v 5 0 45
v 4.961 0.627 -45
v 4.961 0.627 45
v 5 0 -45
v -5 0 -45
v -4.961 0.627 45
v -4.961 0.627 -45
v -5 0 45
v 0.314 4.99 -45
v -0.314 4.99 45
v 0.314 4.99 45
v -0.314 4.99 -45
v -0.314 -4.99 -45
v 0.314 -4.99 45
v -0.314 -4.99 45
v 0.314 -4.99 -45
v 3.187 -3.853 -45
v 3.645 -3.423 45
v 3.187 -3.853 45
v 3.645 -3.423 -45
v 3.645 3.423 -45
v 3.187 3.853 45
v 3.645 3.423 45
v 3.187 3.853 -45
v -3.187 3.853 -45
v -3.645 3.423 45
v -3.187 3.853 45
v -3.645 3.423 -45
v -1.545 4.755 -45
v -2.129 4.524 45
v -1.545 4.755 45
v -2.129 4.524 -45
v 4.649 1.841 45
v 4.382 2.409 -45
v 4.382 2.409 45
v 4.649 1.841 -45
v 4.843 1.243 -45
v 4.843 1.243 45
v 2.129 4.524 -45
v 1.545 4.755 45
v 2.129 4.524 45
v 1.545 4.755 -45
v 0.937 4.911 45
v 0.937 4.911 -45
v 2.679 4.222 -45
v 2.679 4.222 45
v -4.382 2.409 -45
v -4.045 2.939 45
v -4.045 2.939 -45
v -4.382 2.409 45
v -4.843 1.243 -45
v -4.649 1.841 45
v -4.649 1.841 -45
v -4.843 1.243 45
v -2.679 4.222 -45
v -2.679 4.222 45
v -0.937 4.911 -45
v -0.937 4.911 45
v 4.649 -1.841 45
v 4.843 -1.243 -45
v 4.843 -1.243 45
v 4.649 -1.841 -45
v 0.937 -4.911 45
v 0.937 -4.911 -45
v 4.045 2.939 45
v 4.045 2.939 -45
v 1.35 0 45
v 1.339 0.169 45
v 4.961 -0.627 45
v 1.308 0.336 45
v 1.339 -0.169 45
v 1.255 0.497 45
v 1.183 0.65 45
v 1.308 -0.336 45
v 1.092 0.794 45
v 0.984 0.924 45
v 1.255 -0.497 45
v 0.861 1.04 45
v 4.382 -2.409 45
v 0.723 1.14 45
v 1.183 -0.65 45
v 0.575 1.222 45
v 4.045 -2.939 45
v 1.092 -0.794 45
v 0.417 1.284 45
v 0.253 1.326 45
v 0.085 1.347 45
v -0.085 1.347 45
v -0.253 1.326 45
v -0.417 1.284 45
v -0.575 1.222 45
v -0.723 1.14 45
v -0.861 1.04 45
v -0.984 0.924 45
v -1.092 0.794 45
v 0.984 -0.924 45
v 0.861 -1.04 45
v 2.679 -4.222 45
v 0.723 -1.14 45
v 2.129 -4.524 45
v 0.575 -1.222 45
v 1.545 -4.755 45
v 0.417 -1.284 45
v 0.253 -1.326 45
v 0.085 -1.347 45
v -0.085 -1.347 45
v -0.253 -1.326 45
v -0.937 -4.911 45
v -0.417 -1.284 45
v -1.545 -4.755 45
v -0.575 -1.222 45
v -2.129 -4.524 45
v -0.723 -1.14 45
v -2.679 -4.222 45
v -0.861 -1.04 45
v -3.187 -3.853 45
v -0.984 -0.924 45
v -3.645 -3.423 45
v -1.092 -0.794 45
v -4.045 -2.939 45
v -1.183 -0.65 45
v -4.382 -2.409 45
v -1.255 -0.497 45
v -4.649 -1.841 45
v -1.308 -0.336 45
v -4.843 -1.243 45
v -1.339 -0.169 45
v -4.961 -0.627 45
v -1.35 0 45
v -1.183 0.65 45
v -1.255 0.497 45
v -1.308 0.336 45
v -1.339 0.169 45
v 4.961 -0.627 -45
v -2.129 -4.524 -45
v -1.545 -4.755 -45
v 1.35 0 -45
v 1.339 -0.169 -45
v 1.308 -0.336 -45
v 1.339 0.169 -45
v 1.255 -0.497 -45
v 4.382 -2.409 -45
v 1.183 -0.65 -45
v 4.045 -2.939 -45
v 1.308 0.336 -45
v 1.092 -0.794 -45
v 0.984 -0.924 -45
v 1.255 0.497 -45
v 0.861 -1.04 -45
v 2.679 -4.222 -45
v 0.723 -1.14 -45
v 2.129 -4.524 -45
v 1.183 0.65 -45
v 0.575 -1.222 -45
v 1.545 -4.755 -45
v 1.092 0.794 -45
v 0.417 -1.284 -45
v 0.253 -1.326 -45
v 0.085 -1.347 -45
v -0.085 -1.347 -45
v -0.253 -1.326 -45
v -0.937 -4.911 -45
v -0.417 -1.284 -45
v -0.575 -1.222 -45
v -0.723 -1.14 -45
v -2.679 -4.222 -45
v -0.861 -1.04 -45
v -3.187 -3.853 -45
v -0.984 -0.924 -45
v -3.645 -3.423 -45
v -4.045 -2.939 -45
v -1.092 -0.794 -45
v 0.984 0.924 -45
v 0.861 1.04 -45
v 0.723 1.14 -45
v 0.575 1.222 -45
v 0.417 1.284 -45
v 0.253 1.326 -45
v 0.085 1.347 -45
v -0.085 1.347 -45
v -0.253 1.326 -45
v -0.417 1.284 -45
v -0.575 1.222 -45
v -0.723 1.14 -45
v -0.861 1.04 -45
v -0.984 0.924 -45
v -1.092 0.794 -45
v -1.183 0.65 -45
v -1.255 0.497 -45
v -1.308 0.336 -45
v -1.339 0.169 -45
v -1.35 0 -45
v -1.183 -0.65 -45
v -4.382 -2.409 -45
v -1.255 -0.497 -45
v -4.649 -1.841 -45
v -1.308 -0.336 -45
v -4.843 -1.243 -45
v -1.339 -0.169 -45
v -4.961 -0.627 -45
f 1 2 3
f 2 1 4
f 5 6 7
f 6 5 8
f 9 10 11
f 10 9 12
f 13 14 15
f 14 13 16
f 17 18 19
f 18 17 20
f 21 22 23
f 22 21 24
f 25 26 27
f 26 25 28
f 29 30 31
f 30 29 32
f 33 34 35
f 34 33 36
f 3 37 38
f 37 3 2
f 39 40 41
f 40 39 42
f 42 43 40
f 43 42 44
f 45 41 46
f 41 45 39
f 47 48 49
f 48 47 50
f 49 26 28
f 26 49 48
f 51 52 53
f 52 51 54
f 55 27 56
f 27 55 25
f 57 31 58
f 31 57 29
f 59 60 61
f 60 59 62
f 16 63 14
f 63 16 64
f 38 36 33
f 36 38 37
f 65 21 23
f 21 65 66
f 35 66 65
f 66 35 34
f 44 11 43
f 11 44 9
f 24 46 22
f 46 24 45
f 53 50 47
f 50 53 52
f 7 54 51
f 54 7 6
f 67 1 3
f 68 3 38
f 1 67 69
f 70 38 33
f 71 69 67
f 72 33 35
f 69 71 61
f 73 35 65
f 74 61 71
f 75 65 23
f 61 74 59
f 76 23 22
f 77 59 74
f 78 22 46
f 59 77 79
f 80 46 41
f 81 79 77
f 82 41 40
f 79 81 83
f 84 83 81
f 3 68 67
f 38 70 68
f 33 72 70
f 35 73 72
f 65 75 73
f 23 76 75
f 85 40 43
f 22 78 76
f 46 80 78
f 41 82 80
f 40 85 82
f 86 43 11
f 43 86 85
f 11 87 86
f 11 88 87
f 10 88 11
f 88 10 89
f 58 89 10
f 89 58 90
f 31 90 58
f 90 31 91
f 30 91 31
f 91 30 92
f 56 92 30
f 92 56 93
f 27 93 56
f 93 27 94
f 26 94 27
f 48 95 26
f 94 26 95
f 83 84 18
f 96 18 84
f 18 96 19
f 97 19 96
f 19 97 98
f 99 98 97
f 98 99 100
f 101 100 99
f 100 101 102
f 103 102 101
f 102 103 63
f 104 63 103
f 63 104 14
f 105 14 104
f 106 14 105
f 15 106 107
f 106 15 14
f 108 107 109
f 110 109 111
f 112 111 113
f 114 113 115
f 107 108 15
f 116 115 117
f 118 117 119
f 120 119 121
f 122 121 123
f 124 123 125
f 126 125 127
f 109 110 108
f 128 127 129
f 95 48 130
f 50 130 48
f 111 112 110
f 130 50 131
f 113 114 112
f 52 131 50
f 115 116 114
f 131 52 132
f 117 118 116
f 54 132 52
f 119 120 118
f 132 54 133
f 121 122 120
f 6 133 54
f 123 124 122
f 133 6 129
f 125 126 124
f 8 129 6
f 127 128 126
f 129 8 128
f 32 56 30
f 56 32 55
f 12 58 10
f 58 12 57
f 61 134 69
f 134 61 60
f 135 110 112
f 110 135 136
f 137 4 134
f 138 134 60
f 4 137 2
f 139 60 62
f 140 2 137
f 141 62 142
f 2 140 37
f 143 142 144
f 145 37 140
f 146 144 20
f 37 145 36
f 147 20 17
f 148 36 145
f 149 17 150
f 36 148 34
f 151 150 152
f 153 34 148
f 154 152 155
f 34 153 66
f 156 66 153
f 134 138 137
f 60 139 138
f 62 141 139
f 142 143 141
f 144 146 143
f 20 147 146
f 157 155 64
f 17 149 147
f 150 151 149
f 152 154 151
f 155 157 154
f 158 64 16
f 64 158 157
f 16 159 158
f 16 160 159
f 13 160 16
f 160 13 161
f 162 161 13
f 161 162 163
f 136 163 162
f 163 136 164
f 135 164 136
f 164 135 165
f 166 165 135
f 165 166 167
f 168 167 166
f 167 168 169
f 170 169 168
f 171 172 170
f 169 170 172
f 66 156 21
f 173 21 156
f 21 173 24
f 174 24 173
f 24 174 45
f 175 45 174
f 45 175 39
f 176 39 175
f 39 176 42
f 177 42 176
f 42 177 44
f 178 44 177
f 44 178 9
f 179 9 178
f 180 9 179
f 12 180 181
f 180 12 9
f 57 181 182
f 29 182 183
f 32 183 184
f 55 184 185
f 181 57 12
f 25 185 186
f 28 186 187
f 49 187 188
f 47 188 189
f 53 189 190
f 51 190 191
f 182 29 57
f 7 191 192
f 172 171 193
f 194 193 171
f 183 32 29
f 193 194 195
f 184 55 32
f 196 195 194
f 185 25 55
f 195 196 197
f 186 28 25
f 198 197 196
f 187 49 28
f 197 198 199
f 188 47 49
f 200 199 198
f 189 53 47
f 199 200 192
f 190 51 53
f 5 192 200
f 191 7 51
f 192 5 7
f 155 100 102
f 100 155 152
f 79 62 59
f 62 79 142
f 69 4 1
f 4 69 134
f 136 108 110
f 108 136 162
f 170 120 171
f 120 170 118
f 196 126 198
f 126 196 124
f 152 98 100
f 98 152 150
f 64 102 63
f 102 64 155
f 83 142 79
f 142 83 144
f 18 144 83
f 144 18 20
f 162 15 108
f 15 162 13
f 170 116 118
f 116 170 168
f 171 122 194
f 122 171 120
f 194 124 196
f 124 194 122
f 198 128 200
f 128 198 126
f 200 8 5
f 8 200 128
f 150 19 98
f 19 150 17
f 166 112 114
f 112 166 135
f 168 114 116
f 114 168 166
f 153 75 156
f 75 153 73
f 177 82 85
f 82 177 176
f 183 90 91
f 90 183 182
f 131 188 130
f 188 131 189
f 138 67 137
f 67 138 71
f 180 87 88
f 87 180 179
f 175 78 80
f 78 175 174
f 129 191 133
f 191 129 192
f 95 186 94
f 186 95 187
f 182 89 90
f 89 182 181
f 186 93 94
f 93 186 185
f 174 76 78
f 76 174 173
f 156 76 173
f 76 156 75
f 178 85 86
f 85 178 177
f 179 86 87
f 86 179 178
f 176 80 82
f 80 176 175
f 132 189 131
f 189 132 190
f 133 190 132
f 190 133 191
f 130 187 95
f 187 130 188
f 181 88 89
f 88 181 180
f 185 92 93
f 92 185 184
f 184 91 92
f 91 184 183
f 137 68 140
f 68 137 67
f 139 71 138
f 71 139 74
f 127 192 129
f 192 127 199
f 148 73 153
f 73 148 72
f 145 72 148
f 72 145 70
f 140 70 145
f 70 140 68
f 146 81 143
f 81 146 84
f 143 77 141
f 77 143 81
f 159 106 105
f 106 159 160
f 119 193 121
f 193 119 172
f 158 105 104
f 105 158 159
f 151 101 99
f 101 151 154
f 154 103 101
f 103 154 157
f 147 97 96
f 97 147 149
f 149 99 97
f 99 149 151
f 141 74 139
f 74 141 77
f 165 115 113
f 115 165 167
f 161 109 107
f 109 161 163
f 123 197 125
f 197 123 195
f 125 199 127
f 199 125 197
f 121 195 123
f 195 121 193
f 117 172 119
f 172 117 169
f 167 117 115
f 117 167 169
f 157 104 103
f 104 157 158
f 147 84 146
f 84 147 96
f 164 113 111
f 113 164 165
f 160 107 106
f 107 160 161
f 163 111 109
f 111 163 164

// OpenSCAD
$fn = 50;


difference() {
	union() {
		translate(v = [0, 0, -45.0000000000]) {
			cylinder(h = 90, r = 5.0000000000);
		}
	}
	union() {
		translate(v = [0, 0, -100.0000000000]) {
			cylinder(h = 200, r = 1.3500000000);
		}
	}
}
